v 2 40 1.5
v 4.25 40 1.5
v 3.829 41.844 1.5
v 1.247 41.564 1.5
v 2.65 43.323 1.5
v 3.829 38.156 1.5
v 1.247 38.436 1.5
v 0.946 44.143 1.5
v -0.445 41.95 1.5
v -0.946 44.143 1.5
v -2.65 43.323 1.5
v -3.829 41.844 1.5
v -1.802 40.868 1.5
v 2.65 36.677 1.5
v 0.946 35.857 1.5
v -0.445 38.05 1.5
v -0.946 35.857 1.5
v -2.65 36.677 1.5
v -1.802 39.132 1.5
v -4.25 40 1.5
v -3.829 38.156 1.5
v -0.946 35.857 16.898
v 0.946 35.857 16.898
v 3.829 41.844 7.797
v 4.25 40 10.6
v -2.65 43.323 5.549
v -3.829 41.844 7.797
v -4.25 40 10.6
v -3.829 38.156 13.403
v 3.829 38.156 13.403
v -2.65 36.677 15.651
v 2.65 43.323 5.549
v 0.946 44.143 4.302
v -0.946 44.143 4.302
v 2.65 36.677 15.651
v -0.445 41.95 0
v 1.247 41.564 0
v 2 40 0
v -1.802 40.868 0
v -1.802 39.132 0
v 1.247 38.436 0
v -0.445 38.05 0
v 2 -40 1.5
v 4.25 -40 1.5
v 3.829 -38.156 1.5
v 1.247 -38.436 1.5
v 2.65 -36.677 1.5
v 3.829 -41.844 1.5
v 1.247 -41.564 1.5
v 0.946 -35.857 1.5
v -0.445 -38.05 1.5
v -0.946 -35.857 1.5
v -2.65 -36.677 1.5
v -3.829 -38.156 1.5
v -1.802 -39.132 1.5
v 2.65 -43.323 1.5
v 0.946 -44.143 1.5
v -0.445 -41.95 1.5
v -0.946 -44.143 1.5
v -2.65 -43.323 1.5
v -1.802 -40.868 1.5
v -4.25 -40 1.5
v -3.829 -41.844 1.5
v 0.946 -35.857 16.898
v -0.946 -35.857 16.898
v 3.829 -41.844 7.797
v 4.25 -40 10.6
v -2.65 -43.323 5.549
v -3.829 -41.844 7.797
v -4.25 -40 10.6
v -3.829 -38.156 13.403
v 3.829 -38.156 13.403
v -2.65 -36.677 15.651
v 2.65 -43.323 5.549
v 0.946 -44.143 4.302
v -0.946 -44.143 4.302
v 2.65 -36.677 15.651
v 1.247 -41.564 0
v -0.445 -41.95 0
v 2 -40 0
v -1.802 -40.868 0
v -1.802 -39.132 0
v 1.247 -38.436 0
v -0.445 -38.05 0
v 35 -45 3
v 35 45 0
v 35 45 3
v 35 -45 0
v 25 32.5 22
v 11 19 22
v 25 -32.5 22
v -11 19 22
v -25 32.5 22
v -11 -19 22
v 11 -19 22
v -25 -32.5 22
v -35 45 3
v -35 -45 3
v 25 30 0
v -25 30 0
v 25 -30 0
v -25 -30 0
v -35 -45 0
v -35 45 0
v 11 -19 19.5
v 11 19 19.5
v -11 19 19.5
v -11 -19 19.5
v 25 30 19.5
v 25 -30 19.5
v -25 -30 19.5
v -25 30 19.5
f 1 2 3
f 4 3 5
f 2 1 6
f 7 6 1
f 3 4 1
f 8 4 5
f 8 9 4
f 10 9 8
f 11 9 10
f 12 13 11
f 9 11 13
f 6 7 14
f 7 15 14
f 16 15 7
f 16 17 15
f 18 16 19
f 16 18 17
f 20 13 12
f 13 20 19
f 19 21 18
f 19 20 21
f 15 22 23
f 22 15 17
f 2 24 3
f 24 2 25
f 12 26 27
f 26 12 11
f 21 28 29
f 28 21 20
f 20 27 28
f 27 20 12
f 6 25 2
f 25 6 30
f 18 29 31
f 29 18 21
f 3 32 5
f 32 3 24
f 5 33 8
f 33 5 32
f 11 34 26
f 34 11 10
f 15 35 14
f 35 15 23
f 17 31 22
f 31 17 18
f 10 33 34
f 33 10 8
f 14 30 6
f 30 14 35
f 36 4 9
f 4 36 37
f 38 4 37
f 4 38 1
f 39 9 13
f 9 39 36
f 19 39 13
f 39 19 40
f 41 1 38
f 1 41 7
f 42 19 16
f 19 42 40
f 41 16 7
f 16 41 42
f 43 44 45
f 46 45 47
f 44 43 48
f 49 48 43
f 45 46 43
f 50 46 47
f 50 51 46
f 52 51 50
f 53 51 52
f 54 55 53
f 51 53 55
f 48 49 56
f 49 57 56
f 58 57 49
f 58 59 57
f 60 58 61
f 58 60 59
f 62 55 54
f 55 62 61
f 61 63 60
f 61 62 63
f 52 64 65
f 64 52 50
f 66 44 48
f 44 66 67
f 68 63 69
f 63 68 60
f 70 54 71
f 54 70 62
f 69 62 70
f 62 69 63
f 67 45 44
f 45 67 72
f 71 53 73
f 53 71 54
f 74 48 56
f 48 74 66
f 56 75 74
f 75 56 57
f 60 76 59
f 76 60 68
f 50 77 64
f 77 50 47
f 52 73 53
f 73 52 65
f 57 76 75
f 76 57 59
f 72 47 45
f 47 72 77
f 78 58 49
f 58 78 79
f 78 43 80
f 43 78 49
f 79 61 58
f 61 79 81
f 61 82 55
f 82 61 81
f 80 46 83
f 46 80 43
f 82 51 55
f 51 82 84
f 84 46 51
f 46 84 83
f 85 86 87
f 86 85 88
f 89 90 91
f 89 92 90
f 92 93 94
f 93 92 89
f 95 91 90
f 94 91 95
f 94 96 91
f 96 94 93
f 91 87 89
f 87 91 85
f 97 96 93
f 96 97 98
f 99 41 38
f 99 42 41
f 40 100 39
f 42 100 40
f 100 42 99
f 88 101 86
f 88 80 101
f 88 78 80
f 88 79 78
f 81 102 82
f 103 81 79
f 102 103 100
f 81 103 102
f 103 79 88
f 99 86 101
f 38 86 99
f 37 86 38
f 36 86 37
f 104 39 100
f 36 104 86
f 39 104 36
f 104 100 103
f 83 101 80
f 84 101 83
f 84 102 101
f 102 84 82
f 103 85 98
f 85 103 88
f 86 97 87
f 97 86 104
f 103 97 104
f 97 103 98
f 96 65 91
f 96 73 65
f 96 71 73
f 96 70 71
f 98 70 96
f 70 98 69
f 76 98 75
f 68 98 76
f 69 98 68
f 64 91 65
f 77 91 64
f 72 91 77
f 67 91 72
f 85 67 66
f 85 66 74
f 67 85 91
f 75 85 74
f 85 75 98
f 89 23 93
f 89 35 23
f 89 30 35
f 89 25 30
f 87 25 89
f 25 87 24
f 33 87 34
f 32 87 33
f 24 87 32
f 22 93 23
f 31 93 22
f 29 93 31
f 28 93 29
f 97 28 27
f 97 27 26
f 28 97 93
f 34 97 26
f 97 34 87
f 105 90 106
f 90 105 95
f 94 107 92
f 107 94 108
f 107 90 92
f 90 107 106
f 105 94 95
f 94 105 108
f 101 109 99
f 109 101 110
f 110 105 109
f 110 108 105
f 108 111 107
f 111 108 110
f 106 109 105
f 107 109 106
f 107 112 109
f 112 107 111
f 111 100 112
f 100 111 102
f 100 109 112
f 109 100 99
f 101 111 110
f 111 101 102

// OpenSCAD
// Cover Plate
// rnavarro
// v0.5.0

translate([0, 0, 1.5]) union() {
    difference() {
        hull() {
            // Top face
            translate([0, 0, 20]) cube([50, 65, 1], center=true);
            
            // Bottom face
            cube([70, 90, 3], center=true);
        }
        
        // Top face openin
        translate([0, 0, 20]) cube([22, 38, 20], center=true); 
        
        // Back face opening
        translate([0, 0, 0]) cube([50, 60, 36], center=true);
        
        // Top screw hole
        union() {
            // Screw outer hole
            translate([0, 40, 0]) cylinder(h=20, d=8.5);
            
            // Screw inner hole
            translate([0, 40, -5]) cylinder(h=30, d=4);
        }
        
        // Bottom screw hole
        mirror([0, 1, 0]) union() {
            // Screw outer hole
            translate([0, 40, 0]) cylinder(h=20, d=8.5);
            
            // Screw inner hole
            translate([0, 40, -5]) cylinder(h=30, d=4);
        }
    }
}
